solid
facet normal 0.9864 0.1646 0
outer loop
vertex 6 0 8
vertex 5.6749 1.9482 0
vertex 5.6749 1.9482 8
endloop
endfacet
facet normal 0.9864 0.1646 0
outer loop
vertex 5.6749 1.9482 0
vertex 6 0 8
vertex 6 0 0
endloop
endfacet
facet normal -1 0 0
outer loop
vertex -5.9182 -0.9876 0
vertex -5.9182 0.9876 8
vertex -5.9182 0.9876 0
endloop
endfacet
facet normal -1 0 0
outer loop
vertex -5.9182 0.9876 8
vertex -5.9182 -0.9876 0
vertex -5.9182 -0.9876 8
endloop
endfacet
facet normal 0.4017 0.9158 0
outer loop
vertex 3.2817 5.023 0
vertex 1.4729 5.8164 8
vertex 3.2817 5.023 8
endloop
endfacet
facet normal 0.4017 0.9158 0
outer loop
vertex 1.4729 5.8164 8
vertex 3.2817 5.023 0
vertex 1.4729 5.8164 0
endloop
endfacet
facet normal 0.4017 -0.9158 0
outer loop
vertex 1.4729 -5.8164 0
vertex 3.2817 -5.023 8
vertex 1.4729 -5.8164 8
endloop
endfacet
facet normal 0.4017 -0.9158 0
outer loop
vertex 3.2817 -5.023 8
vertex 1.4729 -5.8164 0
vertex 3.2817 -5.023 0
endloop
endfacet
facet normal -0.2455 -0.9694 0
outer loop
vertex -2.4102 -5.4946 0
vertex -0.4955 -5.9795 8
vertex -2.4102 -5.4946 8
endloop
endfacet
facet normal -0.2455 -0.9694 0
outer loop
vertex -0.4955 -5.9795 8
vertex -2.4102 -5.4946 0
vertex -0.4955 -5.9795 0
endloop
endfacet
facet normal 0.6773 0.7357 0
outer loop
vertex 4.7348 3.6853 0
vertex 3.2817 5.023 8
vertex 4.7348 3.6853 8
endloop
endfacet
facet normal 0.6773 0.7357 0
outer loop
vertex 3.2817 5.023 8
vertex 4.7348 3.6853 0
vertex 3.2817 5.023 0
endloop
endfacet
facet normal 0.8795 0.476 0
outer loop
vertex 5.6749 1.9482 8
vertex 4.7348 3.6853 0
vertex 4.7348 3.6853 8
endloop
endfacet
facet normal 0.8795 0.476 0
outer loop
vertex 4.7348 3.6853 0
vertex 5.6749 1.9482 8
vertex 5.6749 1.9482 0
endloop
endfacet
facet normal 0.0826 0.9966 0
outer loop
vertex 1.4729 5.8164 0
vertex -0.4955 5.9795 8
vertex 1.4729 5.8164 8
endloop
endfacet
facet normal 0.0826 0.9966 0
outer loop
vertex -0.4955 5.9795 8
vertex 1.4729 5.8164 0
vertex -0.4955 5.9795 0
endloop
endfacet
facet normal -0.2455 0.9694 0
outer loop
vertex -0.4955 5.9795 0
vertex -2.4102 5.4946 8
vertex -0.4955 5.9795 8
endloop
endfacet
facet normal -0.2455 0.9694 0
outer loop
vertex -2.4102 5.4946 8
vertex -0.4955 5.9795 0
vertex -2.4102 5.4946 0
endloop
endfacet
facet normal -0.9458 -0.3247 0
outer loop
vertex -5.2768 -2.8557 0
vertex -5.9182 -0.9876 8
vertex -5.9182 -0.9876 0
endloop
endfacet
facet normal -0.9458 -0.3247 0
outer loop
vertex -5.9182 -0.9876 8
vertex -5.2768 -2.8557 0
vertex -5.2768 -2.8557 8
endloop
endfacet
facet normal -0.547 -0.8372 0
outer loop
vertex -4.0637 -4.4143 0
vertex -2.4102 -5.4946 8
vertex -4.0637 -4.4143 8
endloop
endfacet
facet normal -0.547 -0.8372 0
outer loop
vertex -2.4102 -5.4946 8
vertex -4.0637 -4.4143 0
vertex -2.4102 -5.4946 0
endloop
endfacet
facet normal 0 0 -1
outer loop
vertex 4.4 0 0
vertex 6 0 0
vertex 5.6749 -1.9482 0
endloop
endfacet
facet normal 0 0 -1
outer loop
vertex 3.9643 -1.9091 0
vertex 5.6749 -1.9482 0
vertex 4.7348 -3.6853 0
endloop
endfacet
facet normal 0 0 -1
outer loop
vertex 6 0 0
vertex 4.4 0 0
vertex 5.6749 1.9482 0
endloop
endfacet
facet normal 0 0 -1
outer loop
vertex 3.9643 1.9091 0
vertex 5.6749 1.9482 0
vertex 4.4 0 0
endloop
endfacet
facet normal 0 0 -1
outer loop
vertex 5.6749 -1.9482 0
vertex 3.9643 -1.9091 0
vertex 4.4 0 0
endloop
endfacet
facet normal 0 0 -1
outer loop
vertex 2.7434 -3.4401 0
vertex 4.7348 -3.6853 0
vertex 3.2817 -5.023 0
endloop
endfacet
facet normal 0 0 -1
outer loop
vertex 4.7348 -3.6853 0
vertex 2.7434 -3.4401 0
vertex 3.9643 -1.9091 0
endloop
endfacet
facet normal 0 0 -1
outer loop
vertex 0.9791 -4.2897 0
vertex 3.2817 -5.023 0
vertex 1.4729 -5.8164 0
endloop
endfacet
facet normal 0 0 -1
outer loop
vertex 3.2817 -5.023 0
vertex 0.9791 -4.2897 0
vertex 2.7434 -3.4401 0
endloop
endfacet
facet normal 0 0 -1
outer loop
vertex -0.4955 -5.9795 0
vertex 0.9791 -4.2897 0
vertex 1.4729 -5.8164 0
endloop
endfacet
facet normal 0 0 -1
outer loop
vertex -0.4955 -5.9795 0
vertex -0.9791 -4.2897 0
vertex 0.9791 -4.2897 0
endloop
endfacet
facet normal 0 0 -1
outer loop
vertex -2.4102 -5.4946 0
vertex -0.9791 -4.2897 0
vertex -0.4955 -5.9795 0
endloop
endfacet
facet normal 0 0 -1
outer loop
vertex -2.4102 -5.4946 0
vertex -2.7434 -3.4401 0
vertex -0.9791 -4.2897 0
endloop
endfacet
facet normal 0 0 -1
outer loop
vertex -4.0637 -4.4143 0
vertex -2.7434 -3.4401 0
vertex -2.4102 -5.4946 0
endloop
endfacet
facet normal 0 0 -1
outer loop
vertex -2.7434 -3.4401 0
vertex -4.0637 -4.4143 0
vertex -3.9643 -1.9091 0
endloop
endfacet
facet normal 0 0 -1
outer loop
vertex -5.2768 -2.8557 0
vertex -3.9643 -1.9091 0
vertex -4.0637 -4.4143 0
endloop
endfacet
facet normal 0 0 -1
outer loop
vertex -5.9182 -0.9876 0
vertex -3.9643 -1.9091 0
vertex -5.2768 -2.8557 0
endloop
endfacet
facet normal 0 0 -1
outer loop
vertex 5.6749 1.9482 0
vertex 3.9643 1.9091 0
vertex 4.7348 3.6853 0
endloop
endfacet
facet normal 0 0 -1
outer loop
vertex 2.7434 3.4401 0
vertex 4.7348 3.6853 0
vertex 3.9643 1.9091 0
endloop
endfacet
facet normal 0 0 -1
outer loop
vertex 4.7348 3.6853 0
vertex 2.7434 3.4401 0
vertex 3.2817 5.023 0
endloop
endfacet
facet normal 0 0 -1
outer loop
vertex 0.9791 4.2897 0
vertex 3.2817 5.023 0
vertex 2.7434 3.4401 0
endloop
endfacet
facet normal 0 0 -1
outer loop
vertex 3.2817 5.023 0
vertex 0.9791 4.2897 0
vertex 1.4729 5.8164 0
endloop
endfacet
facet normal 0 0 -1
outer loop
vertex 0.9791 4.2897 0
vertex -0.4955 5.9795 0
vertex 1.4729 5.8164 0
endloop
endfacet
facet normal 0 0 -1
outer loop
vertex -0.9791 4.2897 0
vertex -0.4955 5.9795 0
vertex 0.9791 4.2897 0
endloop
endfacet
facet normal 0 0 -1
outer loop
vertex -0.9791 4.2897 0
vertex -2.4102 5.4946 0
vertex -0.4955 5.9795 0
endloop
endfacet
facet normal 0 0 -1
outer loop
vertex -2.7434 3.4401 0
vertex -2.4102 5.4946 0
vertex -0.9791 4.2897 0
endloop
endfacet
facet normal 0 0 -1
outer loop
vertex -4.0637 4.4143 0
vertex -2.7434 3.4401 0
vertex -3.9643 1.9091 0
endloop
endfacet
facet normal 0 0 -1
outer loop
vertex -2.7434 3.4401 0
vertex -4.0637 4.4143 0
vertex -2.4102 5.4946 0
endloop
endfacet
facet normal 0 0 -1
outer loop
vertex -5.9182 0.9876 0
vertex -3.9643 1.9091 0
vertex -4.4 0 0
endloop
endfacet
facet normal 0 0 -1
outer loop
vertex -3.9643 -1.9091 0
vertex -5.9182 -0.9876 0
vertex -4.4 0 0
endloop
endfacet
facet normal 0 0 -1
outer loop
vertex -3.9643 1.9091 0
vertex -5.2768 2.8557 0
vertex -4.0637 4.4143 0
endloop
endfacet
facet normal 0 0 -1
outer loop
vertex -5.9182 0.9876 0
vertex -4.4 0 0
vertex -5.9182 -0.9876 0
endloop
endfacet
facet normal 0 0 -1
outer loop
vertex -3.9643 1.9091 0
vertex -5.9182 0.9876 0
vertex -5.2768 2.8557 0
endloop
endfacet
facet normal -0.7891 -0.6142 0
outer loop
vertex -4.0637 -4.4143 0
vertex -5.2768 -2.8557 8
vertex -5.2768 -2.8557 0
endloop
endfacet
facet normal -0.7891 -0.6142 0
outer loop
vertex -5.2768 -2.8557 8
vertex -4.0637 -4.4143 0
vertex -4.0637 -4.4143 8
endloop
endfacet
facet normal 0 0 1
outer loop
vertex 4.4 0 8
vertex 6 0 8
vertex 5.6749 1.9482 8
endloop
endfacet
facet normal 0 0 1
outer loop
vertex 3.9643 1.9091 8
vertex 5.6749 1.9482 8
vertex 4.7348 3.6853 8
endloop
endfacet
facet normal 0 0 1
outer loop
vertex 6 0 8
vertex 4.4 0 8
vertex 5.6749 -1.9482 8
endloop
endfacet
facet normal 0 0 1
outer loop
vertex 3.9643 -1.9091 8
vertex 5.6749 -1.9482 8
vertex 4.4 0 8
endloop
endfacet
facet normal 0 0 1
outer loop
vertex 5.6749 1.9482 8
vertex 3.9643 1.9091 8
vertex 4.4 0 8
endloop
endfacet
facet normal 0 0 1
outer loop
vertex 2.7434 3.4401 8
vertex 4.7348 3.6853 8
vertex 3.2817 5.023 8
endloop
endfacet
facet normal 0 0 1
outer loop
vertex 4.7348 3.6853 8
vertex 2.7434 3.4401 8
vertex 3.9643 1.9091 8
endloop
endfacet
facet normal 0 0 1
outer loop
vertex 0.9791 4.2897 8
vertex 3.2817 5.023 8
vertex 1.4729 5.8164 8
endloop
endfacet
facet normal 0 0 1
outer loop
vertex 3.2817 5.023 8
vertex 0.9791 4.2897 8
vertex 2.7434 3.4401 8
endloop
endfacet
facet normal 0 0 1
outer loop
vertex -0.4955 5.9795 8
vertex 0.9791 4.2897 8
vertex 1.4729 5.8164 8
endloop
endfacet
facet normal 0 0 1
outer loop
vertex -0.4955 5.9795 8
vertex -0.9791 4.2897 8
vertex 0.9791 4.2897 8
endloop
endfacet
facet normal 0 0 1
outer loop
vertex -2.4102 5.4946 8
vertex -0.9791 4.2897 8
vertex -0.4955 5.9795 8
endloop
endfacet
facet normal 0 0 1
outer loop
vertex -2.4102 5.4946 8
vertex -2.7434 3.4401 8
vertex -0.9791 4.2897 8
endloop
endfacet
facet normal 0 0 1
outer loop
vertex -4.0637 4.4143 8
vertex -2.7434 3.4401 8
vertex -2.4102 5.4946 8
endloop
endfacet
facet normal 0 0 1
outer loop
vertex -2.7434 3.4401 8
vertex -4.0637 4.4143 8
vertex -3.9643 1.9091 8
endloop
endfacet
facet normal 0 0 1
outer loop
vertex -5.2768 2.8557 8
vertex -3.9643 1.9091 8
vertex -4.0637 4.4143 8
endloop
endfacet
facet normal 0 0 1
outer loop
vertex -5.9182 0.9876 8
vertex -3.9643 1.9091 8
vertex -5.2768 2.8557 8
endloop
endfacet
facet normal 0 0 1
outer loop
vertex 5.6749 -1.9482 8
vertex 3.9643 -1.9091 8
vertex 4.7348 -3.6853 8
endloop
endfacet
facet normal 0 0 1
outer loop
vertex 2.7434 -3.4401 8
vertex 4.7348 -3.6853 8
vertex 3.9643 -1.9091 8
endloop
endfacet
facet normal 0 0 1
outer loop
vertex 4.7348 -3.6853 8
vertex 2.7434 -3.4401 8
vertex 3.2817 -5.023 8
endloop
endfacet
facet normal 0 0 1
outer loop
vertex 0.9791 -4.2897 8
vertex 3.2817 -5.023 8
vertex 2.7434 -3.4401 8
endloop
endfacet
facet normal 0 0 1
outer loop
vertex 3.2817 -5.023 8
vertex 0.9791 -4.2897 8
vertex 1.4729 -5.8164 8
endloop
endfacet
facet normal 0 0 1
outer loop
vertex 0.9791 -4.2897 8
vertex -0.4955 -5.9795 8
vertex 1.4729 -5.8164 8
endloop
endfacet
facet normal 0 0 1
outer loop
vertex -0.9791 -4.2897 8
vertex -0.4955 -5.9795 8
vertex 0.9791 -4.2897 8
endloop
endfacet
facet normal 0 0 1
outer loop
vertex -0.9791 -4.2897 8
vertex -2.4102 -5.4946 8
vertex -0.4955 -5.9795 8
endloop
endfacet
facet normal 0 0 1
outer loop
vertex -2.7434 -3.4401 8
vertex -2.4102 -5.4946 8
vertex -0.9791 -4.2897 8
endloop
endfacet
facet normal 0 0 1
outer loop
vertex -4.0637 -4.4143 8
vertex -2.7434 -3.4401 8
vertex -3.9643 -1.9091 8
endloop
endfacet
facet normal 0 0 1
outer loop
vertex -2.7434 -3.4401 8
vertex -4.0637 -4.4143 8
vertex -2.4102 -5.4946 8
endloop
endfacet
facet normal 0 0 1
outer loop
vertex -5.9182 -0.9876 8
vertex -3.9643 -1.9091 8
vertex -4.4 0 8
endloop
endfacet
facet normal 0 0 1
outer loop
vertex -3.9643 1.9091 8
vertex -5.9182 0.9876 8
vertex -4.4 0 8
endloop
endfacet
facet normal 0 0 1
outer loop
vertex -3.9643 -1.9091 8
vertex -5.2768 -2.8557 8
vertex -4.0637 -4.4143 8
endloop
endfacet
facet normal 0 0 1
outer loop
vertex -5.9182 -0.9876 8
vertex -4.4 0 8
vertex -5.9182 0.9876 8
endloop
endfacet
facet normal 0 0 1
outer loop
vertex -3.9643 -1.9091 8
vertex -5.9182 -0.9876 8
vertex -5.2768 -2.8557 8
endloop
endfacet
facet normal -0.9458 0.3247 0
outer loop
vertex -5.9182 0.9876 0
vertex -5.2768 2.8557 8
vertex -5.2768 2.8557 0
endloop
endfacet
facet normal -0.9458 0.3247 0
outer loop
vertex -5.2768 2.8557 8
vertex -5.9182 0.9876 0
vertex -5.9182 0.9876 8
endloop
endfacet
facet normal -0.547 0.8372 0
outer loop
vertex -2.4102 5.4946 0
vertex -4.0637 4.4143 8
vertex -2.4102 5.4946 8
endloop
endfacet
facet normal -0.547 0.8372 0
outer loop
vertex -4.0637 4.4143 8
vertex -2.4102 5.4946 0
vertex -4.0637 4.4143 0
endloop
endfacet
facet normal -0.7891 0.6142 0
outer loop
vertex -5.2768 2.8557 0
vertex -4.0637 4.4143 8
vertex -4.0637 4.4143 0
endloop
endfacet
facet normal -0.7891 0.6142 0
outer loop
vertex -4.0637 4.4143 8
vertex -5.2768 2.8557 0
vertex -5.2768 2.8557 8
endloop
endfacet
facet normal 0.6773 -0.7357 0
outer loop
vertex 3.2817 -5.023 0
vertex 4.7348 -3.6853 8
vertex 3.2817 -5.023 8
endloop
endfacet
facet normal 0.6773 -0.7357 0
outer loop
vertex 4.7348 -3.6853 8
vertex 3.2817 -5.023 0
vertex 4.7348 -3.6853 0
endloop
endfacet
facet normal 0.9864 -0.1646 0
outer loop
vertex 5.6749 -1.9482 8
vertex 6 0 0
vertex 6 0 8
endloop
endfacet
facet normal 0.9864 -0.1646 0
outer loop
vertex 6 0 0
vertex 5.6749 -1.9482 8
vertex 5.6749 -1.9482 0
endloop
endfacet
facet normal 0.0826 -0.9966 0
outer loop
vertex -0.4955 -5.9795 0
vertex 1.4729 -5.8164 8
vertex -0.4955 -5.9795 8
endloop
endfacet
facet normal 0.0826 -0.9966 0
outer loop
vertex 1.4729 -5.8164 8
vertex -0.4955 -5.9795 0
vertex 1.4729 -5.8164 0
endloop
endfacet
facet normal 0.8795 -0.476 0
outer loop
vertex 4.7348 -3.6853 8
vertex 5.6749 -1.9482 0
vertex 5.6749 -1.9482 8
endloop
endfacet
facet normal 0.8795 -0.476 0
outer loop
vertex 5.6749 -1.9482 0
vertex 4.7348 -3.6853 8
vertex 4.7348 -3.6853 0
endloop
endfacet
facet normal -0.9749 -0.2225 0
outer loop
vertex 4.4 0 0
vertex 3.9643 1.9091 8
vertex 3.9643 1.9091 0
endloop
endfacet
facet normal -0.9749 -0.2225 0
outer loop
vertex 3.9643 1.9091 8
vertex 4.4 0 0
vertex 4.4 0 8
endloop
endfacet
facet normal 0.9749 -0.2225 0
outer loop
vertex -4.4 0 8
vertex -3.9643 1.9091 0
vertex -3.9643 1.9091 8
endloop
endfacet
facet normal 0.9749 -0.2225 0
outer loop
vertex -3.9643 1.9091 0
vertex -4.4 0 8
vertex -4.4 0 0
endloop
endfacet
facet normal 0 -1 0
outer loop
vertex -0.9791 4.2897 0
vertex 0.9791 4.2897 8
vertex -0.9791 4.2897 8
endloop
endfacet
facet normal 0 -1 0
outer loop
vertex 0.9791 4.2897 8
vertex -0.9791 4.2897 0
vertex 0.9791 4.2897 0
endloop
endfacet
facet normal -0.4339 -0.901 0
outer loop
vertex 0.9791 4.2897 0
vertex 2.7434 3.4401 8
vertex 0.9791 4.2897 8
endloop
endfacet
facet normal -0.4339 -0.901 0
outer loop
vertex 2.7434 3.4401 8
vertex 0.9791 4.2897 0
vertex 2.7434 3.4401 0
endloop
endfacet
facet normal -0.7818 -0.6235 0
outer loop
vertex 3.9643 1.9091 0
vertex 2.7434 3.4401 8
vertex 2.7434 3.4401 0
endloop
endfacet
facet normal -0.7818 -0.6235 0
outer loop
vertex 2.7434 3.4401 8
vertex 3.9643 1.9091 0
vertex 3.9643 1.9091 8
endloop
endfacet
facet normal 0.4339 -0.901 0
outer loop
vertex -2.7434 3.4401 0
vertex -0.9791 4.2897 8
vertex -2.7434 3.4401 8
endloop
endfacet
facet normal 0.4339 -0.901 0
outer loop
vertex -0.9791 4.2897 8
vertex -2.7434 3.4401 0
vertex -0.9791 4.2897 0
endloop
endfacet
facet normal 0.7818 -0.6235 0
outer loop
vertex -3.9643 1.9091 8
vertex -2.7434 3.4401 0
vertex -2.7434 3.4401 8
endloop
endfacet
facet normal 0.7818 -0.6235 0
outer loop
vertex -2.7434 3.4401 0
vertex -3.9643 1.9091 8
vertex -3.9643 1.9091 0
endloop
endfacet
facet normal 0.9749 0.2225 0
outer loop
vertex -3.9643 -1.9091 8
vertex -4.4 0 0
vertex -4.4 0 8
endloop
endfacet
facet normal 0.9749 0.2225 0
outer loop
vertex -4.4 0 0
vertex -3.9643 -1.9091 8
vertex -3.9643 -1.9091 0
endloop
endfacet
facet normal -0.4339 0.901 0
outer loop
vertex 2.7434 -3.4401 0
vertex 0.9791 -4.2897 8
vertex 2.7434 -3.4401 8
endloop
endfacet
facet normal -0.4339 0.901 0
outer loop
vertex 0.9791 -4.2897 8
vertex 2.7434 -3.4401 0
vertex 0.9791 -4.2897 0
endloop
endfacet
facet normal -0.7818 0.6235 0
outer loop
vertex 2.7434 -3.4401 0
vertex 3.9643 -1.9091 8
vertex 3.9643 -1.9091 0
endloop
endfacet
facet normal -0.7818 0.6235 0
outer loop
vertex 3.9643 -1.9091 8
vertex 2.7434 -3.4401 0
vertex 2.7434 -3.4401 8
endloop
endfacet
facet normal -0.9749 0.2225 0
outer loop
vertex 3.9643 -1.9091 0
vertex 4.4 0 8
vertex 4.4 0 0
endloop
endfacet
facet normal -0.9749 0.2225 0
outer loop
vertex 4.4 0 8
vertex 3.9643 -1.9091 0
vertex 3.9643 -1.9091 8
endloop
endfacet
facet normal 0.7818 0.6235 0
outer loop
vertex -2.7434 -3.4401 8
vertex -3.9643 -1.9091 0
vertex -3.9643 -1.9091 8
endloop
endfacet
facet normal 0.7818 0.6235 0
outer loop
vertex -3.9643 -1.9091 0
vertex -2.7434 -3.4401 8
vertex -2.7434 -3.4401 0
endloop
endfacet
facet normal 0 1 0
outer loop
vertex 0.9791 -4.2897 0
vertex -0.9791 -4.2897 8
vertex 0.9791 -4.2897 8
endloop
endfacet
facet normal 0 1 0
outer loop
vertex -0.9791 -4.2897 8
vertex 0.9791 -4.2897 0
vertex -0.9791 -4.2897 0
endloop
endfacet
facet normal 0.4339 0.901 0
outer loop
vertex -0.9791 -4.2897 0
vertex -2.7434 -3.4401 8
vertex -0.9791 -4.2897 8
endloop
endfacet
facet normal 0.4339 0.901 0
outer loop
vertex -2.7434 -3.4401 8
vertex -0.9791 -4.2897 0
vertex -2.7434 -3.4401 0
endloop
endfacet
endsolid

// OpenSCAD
difference(){
    cylinder(8,6,6);
    cylinder(10,4.4,4.4);
}
